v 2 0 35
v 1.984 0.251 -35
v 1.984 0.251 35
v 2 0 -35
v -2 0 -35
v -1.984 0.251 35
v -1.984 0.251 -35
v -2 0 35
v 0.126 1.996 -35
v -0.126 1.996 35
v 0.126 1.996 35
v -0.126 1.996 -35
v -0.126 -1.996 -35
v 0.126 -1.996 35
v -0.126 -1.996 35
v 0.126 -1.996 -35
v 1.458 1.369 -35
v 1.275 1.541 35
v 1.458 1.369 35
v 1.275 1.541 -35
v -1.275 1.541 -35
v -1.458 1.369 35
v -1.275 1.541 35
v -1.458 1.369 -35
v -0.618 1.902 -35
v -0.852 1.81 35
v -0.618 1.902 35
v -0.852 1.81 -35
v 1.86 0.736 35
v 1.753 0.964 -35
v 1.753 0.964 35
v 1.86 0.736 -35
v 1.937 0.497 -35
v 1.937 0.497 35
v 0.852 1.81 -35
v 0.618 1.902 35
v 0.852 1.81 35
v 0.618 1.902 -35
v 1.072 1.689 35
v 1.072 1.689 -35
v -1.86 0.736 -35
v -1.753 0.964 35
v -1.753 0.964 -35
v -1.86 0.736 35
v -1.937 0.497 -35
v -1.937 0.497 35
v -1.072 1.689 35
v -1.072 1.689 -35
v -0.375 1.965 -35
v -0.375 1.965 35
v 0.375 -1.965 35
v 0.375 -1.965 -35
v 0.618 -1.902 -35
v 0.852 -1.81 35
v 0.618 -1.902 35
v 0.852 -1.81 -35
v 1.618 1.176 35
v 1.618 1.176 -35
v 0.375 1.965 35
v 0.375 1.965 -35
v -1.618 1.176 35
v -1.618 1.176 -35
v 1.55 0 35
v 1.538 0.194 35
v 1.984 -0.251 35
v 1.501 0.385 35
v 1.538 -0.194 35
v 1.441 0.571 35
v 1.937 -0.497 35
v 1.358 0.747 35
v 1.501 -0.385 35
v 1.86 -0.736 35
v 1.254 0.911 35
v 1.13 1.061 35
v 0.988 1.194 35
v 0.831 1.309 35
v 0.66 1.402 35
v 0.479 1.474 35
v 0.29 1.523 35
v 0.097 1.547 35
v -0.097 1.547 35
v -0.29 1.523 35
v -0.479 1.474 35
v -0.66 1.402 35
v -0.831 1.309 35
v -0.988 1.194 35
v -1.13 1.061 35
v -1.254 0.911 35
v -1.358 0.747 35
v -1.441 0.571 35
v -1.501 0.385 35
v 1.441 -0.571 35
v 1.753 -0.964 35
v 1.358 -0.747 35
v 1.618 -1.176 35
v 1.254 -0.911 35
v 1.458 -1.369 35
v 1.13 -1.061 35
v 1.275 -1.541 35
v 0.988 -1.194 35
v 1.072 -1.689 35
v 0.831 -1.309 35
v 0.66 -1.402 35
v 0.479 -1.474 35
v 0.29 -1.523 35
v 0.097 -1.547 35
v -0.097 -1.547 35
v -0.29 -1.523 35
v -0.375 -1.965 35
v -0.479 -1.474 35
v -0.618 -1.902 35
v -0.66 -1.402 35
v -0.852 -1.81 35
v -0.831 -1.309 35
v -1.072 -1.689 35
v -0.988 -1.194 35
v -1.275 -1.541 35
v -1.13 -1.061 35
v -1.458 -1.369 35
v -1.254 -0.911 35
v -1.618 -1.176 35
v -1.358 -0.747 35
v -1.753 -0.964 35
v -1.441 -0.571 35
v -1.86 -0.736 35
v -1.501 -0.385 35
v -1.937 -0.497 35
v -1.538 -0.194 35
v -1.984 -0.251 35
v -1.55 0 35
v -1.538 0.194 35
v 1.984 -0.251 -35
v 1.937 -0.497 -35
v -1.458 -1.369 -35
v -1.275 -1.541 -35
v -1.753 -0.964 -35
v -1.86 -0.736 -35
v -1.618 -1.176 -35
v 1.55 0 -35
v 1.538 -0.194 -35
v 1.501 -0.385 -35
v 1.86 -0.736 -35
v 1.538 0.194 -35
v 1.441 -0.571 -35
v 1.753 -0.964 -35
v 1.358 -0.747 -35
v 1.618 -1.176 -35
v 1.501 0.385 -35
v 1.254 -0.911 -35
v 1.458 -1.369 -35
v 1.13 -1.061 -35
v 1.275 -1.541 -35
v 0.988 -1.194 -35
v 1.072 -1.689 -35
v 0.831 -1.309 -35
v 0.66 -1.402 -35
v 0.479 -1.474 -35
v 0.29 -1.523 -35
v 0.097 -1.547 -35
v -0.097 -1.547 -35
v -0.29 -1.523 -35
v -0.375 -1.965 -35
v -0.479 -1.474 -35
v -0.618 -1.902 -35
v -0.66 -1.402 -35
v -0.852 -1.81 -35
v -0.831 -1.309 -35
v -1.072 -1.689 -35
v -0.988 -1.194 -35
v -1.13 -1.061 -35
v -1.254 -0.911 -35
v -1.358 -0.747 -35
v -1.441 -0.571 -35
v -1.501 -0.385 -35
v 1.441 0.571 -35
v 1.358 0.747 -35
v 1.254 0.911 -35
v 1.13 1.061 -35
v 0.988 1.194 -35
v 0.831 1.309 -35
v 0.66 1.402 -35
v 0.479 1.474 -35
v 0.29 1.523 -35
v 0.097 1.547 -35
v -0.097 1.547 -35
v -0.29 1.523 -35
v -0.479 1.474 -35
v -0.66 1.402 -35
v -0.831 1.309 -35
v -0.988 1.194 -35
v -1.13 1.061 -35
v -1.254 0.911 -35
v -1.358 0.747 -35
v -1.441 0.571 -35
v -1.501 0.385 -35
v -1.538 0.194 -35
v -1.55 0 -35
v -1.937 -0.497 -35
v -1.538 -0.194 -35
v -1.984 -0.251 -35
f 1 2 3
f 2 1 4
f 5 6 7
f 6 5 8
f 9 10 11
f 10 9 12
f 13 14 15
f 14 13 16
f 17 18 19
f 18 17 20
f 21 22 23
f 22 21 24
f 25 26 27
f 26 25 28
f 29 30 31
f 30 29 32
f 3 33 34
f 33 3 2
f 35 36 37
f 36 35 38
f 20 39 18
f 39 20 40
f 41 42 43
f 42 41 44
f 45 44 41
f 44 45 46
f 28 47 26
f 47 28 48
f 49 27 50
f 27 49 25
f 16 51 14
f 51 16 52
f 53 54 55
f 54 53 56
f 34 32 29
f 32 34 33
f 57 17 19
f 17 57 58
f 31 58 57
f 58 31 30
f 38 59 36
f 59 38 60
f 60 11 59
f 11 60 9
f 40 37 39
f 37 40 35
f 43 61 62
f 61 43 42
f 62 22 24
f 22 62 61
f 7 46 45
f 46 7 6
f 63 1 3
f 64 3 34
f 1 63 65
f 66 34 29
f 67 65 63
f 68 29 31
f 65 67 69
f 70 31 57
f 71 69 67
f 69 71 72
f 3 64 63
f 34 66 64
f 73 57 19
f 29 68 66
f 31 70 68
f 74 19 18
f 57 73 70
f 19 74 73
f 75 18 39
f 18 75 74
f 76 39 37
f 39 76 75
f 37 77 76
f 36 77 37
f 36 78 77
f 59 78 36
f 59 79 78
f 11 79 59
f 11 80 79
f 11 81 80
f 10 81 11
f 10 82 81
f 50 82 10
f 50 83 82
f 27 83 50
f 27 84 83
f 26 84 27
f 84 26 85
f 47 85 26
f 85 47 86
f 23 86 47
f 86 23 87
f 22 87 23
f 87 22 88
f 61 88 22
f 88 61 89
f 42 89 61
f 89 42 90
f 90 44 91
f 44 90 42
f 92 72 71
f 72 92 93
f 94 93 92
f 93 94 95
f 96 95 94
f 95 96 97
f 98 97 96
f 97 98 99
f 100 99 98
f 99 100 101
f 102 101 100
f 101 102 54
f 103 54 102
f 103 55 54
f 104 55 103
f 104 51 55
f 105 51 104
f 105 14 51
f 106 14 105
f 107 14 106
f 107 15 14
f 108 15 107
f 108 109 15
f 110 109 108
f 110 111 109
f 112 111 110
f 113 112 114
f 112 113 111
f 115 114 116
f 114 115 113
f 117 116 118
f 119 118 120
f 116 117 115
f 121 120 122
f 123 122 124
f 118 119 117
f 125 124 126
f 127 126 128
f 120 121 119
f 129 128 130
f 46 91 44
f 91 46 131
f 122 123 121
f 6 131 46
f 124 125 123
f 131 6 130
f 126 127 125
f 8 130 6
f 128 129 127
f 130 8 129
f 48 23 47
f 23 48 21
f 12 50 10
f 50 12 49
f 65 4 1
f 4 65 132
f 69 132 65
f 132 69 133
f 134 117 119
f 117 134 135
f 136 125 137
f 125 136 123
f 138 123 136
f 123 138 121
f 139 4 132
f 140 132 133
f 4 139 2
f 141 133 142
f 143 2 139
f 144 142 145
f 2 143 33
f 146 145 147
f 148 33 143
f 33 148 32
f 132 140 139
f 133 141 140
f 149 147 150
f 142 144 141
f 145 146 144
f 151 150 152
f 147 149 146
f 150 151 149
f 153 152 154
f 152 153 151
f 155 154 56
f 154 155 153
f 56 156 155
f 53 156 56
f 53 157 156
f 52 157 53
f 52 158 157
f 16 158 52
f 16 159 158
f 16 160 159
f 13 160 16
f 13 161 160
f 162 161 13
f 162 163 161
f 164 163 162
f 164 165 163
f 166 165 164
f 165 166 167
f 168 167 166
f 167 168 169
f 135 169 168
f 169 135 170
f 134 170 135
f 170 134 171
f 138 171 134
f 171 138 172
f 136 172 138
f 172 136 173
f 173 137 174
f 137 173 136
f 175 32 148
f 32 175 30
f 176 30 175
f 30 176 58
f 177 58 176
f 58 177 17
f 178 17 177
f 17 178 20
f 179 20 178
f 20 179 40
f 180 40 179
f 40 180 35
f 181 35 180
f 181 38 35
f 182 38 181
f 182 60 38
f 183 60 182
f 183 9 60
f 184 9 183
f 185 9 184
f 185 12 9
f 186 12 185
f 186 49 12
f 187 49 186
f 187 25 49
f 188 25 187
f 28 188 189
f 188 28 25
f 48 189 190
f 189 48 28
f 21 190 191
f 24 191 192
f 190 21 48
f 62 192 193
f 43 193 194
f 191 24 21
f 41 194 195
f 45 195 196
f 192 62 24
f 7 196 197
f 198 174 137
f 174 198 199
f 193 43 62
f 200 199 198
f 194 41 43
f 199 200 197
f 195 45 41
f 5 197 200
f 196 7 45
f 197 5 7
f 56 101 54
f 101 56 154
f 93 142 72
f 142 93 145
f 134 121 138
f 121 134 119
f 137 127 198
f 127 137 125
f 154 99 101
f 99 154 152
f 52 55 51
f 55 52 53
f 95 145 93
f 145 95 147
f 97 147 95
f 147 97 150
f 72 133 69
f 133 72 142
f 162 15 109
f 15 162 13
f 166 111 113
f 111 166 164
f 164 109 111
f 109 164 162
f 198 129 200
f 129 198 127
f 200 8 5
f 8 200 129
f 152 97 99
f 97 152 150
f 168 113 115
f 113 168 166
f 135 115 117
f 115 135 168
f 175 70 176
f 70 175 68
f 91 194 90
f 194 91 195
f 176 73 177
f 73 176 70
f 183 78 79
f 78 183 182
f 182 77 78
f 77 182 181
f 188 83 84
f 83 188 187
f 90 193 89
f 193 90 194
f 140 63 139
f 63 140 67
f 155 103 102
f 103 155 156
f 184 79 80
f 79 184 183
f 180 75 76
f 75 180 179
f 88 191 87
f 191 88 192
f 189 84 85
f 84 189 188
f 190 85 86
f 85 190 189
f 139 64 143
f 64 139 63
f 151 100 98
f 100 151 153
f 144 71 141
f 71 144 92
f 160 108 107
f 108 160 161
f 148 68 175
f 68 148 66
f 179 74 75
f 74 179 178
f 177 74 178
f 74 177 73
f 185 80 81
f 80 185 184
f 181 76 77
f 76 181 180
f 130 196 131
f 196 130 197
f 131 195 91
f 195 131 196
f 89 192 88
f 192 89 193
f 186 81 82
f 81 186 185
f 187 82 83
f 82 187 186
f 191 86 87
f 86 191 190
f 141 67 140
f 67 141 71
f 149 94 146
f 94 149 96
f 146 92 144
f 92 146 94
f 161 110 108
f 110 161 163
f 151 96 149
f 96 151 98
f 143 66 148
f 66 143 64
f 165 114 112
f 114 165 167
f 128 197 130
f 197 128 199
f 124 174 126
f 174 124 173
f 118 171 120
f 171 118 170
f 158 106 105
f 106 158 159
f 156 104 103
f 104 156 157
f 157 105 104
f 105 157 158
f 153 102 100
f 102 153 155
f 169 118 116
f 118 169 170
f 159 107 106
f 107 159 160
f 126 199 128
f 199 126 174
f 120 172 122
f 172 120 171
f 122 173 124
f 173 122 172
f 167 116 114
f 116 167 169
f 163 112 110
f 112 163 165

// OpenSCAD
$fn = 50;


difference() {
	union() {
		translate(v = [0, 0, -35.0000000000]) {
			cylinder(h = 70, r = 2.0000000000);
		}
	}
	union() {
		translate(v = [0, 0, -100.0000000000]) {
			cylinder(h = 200, r = 1.5500000000);
		}
	}
}
